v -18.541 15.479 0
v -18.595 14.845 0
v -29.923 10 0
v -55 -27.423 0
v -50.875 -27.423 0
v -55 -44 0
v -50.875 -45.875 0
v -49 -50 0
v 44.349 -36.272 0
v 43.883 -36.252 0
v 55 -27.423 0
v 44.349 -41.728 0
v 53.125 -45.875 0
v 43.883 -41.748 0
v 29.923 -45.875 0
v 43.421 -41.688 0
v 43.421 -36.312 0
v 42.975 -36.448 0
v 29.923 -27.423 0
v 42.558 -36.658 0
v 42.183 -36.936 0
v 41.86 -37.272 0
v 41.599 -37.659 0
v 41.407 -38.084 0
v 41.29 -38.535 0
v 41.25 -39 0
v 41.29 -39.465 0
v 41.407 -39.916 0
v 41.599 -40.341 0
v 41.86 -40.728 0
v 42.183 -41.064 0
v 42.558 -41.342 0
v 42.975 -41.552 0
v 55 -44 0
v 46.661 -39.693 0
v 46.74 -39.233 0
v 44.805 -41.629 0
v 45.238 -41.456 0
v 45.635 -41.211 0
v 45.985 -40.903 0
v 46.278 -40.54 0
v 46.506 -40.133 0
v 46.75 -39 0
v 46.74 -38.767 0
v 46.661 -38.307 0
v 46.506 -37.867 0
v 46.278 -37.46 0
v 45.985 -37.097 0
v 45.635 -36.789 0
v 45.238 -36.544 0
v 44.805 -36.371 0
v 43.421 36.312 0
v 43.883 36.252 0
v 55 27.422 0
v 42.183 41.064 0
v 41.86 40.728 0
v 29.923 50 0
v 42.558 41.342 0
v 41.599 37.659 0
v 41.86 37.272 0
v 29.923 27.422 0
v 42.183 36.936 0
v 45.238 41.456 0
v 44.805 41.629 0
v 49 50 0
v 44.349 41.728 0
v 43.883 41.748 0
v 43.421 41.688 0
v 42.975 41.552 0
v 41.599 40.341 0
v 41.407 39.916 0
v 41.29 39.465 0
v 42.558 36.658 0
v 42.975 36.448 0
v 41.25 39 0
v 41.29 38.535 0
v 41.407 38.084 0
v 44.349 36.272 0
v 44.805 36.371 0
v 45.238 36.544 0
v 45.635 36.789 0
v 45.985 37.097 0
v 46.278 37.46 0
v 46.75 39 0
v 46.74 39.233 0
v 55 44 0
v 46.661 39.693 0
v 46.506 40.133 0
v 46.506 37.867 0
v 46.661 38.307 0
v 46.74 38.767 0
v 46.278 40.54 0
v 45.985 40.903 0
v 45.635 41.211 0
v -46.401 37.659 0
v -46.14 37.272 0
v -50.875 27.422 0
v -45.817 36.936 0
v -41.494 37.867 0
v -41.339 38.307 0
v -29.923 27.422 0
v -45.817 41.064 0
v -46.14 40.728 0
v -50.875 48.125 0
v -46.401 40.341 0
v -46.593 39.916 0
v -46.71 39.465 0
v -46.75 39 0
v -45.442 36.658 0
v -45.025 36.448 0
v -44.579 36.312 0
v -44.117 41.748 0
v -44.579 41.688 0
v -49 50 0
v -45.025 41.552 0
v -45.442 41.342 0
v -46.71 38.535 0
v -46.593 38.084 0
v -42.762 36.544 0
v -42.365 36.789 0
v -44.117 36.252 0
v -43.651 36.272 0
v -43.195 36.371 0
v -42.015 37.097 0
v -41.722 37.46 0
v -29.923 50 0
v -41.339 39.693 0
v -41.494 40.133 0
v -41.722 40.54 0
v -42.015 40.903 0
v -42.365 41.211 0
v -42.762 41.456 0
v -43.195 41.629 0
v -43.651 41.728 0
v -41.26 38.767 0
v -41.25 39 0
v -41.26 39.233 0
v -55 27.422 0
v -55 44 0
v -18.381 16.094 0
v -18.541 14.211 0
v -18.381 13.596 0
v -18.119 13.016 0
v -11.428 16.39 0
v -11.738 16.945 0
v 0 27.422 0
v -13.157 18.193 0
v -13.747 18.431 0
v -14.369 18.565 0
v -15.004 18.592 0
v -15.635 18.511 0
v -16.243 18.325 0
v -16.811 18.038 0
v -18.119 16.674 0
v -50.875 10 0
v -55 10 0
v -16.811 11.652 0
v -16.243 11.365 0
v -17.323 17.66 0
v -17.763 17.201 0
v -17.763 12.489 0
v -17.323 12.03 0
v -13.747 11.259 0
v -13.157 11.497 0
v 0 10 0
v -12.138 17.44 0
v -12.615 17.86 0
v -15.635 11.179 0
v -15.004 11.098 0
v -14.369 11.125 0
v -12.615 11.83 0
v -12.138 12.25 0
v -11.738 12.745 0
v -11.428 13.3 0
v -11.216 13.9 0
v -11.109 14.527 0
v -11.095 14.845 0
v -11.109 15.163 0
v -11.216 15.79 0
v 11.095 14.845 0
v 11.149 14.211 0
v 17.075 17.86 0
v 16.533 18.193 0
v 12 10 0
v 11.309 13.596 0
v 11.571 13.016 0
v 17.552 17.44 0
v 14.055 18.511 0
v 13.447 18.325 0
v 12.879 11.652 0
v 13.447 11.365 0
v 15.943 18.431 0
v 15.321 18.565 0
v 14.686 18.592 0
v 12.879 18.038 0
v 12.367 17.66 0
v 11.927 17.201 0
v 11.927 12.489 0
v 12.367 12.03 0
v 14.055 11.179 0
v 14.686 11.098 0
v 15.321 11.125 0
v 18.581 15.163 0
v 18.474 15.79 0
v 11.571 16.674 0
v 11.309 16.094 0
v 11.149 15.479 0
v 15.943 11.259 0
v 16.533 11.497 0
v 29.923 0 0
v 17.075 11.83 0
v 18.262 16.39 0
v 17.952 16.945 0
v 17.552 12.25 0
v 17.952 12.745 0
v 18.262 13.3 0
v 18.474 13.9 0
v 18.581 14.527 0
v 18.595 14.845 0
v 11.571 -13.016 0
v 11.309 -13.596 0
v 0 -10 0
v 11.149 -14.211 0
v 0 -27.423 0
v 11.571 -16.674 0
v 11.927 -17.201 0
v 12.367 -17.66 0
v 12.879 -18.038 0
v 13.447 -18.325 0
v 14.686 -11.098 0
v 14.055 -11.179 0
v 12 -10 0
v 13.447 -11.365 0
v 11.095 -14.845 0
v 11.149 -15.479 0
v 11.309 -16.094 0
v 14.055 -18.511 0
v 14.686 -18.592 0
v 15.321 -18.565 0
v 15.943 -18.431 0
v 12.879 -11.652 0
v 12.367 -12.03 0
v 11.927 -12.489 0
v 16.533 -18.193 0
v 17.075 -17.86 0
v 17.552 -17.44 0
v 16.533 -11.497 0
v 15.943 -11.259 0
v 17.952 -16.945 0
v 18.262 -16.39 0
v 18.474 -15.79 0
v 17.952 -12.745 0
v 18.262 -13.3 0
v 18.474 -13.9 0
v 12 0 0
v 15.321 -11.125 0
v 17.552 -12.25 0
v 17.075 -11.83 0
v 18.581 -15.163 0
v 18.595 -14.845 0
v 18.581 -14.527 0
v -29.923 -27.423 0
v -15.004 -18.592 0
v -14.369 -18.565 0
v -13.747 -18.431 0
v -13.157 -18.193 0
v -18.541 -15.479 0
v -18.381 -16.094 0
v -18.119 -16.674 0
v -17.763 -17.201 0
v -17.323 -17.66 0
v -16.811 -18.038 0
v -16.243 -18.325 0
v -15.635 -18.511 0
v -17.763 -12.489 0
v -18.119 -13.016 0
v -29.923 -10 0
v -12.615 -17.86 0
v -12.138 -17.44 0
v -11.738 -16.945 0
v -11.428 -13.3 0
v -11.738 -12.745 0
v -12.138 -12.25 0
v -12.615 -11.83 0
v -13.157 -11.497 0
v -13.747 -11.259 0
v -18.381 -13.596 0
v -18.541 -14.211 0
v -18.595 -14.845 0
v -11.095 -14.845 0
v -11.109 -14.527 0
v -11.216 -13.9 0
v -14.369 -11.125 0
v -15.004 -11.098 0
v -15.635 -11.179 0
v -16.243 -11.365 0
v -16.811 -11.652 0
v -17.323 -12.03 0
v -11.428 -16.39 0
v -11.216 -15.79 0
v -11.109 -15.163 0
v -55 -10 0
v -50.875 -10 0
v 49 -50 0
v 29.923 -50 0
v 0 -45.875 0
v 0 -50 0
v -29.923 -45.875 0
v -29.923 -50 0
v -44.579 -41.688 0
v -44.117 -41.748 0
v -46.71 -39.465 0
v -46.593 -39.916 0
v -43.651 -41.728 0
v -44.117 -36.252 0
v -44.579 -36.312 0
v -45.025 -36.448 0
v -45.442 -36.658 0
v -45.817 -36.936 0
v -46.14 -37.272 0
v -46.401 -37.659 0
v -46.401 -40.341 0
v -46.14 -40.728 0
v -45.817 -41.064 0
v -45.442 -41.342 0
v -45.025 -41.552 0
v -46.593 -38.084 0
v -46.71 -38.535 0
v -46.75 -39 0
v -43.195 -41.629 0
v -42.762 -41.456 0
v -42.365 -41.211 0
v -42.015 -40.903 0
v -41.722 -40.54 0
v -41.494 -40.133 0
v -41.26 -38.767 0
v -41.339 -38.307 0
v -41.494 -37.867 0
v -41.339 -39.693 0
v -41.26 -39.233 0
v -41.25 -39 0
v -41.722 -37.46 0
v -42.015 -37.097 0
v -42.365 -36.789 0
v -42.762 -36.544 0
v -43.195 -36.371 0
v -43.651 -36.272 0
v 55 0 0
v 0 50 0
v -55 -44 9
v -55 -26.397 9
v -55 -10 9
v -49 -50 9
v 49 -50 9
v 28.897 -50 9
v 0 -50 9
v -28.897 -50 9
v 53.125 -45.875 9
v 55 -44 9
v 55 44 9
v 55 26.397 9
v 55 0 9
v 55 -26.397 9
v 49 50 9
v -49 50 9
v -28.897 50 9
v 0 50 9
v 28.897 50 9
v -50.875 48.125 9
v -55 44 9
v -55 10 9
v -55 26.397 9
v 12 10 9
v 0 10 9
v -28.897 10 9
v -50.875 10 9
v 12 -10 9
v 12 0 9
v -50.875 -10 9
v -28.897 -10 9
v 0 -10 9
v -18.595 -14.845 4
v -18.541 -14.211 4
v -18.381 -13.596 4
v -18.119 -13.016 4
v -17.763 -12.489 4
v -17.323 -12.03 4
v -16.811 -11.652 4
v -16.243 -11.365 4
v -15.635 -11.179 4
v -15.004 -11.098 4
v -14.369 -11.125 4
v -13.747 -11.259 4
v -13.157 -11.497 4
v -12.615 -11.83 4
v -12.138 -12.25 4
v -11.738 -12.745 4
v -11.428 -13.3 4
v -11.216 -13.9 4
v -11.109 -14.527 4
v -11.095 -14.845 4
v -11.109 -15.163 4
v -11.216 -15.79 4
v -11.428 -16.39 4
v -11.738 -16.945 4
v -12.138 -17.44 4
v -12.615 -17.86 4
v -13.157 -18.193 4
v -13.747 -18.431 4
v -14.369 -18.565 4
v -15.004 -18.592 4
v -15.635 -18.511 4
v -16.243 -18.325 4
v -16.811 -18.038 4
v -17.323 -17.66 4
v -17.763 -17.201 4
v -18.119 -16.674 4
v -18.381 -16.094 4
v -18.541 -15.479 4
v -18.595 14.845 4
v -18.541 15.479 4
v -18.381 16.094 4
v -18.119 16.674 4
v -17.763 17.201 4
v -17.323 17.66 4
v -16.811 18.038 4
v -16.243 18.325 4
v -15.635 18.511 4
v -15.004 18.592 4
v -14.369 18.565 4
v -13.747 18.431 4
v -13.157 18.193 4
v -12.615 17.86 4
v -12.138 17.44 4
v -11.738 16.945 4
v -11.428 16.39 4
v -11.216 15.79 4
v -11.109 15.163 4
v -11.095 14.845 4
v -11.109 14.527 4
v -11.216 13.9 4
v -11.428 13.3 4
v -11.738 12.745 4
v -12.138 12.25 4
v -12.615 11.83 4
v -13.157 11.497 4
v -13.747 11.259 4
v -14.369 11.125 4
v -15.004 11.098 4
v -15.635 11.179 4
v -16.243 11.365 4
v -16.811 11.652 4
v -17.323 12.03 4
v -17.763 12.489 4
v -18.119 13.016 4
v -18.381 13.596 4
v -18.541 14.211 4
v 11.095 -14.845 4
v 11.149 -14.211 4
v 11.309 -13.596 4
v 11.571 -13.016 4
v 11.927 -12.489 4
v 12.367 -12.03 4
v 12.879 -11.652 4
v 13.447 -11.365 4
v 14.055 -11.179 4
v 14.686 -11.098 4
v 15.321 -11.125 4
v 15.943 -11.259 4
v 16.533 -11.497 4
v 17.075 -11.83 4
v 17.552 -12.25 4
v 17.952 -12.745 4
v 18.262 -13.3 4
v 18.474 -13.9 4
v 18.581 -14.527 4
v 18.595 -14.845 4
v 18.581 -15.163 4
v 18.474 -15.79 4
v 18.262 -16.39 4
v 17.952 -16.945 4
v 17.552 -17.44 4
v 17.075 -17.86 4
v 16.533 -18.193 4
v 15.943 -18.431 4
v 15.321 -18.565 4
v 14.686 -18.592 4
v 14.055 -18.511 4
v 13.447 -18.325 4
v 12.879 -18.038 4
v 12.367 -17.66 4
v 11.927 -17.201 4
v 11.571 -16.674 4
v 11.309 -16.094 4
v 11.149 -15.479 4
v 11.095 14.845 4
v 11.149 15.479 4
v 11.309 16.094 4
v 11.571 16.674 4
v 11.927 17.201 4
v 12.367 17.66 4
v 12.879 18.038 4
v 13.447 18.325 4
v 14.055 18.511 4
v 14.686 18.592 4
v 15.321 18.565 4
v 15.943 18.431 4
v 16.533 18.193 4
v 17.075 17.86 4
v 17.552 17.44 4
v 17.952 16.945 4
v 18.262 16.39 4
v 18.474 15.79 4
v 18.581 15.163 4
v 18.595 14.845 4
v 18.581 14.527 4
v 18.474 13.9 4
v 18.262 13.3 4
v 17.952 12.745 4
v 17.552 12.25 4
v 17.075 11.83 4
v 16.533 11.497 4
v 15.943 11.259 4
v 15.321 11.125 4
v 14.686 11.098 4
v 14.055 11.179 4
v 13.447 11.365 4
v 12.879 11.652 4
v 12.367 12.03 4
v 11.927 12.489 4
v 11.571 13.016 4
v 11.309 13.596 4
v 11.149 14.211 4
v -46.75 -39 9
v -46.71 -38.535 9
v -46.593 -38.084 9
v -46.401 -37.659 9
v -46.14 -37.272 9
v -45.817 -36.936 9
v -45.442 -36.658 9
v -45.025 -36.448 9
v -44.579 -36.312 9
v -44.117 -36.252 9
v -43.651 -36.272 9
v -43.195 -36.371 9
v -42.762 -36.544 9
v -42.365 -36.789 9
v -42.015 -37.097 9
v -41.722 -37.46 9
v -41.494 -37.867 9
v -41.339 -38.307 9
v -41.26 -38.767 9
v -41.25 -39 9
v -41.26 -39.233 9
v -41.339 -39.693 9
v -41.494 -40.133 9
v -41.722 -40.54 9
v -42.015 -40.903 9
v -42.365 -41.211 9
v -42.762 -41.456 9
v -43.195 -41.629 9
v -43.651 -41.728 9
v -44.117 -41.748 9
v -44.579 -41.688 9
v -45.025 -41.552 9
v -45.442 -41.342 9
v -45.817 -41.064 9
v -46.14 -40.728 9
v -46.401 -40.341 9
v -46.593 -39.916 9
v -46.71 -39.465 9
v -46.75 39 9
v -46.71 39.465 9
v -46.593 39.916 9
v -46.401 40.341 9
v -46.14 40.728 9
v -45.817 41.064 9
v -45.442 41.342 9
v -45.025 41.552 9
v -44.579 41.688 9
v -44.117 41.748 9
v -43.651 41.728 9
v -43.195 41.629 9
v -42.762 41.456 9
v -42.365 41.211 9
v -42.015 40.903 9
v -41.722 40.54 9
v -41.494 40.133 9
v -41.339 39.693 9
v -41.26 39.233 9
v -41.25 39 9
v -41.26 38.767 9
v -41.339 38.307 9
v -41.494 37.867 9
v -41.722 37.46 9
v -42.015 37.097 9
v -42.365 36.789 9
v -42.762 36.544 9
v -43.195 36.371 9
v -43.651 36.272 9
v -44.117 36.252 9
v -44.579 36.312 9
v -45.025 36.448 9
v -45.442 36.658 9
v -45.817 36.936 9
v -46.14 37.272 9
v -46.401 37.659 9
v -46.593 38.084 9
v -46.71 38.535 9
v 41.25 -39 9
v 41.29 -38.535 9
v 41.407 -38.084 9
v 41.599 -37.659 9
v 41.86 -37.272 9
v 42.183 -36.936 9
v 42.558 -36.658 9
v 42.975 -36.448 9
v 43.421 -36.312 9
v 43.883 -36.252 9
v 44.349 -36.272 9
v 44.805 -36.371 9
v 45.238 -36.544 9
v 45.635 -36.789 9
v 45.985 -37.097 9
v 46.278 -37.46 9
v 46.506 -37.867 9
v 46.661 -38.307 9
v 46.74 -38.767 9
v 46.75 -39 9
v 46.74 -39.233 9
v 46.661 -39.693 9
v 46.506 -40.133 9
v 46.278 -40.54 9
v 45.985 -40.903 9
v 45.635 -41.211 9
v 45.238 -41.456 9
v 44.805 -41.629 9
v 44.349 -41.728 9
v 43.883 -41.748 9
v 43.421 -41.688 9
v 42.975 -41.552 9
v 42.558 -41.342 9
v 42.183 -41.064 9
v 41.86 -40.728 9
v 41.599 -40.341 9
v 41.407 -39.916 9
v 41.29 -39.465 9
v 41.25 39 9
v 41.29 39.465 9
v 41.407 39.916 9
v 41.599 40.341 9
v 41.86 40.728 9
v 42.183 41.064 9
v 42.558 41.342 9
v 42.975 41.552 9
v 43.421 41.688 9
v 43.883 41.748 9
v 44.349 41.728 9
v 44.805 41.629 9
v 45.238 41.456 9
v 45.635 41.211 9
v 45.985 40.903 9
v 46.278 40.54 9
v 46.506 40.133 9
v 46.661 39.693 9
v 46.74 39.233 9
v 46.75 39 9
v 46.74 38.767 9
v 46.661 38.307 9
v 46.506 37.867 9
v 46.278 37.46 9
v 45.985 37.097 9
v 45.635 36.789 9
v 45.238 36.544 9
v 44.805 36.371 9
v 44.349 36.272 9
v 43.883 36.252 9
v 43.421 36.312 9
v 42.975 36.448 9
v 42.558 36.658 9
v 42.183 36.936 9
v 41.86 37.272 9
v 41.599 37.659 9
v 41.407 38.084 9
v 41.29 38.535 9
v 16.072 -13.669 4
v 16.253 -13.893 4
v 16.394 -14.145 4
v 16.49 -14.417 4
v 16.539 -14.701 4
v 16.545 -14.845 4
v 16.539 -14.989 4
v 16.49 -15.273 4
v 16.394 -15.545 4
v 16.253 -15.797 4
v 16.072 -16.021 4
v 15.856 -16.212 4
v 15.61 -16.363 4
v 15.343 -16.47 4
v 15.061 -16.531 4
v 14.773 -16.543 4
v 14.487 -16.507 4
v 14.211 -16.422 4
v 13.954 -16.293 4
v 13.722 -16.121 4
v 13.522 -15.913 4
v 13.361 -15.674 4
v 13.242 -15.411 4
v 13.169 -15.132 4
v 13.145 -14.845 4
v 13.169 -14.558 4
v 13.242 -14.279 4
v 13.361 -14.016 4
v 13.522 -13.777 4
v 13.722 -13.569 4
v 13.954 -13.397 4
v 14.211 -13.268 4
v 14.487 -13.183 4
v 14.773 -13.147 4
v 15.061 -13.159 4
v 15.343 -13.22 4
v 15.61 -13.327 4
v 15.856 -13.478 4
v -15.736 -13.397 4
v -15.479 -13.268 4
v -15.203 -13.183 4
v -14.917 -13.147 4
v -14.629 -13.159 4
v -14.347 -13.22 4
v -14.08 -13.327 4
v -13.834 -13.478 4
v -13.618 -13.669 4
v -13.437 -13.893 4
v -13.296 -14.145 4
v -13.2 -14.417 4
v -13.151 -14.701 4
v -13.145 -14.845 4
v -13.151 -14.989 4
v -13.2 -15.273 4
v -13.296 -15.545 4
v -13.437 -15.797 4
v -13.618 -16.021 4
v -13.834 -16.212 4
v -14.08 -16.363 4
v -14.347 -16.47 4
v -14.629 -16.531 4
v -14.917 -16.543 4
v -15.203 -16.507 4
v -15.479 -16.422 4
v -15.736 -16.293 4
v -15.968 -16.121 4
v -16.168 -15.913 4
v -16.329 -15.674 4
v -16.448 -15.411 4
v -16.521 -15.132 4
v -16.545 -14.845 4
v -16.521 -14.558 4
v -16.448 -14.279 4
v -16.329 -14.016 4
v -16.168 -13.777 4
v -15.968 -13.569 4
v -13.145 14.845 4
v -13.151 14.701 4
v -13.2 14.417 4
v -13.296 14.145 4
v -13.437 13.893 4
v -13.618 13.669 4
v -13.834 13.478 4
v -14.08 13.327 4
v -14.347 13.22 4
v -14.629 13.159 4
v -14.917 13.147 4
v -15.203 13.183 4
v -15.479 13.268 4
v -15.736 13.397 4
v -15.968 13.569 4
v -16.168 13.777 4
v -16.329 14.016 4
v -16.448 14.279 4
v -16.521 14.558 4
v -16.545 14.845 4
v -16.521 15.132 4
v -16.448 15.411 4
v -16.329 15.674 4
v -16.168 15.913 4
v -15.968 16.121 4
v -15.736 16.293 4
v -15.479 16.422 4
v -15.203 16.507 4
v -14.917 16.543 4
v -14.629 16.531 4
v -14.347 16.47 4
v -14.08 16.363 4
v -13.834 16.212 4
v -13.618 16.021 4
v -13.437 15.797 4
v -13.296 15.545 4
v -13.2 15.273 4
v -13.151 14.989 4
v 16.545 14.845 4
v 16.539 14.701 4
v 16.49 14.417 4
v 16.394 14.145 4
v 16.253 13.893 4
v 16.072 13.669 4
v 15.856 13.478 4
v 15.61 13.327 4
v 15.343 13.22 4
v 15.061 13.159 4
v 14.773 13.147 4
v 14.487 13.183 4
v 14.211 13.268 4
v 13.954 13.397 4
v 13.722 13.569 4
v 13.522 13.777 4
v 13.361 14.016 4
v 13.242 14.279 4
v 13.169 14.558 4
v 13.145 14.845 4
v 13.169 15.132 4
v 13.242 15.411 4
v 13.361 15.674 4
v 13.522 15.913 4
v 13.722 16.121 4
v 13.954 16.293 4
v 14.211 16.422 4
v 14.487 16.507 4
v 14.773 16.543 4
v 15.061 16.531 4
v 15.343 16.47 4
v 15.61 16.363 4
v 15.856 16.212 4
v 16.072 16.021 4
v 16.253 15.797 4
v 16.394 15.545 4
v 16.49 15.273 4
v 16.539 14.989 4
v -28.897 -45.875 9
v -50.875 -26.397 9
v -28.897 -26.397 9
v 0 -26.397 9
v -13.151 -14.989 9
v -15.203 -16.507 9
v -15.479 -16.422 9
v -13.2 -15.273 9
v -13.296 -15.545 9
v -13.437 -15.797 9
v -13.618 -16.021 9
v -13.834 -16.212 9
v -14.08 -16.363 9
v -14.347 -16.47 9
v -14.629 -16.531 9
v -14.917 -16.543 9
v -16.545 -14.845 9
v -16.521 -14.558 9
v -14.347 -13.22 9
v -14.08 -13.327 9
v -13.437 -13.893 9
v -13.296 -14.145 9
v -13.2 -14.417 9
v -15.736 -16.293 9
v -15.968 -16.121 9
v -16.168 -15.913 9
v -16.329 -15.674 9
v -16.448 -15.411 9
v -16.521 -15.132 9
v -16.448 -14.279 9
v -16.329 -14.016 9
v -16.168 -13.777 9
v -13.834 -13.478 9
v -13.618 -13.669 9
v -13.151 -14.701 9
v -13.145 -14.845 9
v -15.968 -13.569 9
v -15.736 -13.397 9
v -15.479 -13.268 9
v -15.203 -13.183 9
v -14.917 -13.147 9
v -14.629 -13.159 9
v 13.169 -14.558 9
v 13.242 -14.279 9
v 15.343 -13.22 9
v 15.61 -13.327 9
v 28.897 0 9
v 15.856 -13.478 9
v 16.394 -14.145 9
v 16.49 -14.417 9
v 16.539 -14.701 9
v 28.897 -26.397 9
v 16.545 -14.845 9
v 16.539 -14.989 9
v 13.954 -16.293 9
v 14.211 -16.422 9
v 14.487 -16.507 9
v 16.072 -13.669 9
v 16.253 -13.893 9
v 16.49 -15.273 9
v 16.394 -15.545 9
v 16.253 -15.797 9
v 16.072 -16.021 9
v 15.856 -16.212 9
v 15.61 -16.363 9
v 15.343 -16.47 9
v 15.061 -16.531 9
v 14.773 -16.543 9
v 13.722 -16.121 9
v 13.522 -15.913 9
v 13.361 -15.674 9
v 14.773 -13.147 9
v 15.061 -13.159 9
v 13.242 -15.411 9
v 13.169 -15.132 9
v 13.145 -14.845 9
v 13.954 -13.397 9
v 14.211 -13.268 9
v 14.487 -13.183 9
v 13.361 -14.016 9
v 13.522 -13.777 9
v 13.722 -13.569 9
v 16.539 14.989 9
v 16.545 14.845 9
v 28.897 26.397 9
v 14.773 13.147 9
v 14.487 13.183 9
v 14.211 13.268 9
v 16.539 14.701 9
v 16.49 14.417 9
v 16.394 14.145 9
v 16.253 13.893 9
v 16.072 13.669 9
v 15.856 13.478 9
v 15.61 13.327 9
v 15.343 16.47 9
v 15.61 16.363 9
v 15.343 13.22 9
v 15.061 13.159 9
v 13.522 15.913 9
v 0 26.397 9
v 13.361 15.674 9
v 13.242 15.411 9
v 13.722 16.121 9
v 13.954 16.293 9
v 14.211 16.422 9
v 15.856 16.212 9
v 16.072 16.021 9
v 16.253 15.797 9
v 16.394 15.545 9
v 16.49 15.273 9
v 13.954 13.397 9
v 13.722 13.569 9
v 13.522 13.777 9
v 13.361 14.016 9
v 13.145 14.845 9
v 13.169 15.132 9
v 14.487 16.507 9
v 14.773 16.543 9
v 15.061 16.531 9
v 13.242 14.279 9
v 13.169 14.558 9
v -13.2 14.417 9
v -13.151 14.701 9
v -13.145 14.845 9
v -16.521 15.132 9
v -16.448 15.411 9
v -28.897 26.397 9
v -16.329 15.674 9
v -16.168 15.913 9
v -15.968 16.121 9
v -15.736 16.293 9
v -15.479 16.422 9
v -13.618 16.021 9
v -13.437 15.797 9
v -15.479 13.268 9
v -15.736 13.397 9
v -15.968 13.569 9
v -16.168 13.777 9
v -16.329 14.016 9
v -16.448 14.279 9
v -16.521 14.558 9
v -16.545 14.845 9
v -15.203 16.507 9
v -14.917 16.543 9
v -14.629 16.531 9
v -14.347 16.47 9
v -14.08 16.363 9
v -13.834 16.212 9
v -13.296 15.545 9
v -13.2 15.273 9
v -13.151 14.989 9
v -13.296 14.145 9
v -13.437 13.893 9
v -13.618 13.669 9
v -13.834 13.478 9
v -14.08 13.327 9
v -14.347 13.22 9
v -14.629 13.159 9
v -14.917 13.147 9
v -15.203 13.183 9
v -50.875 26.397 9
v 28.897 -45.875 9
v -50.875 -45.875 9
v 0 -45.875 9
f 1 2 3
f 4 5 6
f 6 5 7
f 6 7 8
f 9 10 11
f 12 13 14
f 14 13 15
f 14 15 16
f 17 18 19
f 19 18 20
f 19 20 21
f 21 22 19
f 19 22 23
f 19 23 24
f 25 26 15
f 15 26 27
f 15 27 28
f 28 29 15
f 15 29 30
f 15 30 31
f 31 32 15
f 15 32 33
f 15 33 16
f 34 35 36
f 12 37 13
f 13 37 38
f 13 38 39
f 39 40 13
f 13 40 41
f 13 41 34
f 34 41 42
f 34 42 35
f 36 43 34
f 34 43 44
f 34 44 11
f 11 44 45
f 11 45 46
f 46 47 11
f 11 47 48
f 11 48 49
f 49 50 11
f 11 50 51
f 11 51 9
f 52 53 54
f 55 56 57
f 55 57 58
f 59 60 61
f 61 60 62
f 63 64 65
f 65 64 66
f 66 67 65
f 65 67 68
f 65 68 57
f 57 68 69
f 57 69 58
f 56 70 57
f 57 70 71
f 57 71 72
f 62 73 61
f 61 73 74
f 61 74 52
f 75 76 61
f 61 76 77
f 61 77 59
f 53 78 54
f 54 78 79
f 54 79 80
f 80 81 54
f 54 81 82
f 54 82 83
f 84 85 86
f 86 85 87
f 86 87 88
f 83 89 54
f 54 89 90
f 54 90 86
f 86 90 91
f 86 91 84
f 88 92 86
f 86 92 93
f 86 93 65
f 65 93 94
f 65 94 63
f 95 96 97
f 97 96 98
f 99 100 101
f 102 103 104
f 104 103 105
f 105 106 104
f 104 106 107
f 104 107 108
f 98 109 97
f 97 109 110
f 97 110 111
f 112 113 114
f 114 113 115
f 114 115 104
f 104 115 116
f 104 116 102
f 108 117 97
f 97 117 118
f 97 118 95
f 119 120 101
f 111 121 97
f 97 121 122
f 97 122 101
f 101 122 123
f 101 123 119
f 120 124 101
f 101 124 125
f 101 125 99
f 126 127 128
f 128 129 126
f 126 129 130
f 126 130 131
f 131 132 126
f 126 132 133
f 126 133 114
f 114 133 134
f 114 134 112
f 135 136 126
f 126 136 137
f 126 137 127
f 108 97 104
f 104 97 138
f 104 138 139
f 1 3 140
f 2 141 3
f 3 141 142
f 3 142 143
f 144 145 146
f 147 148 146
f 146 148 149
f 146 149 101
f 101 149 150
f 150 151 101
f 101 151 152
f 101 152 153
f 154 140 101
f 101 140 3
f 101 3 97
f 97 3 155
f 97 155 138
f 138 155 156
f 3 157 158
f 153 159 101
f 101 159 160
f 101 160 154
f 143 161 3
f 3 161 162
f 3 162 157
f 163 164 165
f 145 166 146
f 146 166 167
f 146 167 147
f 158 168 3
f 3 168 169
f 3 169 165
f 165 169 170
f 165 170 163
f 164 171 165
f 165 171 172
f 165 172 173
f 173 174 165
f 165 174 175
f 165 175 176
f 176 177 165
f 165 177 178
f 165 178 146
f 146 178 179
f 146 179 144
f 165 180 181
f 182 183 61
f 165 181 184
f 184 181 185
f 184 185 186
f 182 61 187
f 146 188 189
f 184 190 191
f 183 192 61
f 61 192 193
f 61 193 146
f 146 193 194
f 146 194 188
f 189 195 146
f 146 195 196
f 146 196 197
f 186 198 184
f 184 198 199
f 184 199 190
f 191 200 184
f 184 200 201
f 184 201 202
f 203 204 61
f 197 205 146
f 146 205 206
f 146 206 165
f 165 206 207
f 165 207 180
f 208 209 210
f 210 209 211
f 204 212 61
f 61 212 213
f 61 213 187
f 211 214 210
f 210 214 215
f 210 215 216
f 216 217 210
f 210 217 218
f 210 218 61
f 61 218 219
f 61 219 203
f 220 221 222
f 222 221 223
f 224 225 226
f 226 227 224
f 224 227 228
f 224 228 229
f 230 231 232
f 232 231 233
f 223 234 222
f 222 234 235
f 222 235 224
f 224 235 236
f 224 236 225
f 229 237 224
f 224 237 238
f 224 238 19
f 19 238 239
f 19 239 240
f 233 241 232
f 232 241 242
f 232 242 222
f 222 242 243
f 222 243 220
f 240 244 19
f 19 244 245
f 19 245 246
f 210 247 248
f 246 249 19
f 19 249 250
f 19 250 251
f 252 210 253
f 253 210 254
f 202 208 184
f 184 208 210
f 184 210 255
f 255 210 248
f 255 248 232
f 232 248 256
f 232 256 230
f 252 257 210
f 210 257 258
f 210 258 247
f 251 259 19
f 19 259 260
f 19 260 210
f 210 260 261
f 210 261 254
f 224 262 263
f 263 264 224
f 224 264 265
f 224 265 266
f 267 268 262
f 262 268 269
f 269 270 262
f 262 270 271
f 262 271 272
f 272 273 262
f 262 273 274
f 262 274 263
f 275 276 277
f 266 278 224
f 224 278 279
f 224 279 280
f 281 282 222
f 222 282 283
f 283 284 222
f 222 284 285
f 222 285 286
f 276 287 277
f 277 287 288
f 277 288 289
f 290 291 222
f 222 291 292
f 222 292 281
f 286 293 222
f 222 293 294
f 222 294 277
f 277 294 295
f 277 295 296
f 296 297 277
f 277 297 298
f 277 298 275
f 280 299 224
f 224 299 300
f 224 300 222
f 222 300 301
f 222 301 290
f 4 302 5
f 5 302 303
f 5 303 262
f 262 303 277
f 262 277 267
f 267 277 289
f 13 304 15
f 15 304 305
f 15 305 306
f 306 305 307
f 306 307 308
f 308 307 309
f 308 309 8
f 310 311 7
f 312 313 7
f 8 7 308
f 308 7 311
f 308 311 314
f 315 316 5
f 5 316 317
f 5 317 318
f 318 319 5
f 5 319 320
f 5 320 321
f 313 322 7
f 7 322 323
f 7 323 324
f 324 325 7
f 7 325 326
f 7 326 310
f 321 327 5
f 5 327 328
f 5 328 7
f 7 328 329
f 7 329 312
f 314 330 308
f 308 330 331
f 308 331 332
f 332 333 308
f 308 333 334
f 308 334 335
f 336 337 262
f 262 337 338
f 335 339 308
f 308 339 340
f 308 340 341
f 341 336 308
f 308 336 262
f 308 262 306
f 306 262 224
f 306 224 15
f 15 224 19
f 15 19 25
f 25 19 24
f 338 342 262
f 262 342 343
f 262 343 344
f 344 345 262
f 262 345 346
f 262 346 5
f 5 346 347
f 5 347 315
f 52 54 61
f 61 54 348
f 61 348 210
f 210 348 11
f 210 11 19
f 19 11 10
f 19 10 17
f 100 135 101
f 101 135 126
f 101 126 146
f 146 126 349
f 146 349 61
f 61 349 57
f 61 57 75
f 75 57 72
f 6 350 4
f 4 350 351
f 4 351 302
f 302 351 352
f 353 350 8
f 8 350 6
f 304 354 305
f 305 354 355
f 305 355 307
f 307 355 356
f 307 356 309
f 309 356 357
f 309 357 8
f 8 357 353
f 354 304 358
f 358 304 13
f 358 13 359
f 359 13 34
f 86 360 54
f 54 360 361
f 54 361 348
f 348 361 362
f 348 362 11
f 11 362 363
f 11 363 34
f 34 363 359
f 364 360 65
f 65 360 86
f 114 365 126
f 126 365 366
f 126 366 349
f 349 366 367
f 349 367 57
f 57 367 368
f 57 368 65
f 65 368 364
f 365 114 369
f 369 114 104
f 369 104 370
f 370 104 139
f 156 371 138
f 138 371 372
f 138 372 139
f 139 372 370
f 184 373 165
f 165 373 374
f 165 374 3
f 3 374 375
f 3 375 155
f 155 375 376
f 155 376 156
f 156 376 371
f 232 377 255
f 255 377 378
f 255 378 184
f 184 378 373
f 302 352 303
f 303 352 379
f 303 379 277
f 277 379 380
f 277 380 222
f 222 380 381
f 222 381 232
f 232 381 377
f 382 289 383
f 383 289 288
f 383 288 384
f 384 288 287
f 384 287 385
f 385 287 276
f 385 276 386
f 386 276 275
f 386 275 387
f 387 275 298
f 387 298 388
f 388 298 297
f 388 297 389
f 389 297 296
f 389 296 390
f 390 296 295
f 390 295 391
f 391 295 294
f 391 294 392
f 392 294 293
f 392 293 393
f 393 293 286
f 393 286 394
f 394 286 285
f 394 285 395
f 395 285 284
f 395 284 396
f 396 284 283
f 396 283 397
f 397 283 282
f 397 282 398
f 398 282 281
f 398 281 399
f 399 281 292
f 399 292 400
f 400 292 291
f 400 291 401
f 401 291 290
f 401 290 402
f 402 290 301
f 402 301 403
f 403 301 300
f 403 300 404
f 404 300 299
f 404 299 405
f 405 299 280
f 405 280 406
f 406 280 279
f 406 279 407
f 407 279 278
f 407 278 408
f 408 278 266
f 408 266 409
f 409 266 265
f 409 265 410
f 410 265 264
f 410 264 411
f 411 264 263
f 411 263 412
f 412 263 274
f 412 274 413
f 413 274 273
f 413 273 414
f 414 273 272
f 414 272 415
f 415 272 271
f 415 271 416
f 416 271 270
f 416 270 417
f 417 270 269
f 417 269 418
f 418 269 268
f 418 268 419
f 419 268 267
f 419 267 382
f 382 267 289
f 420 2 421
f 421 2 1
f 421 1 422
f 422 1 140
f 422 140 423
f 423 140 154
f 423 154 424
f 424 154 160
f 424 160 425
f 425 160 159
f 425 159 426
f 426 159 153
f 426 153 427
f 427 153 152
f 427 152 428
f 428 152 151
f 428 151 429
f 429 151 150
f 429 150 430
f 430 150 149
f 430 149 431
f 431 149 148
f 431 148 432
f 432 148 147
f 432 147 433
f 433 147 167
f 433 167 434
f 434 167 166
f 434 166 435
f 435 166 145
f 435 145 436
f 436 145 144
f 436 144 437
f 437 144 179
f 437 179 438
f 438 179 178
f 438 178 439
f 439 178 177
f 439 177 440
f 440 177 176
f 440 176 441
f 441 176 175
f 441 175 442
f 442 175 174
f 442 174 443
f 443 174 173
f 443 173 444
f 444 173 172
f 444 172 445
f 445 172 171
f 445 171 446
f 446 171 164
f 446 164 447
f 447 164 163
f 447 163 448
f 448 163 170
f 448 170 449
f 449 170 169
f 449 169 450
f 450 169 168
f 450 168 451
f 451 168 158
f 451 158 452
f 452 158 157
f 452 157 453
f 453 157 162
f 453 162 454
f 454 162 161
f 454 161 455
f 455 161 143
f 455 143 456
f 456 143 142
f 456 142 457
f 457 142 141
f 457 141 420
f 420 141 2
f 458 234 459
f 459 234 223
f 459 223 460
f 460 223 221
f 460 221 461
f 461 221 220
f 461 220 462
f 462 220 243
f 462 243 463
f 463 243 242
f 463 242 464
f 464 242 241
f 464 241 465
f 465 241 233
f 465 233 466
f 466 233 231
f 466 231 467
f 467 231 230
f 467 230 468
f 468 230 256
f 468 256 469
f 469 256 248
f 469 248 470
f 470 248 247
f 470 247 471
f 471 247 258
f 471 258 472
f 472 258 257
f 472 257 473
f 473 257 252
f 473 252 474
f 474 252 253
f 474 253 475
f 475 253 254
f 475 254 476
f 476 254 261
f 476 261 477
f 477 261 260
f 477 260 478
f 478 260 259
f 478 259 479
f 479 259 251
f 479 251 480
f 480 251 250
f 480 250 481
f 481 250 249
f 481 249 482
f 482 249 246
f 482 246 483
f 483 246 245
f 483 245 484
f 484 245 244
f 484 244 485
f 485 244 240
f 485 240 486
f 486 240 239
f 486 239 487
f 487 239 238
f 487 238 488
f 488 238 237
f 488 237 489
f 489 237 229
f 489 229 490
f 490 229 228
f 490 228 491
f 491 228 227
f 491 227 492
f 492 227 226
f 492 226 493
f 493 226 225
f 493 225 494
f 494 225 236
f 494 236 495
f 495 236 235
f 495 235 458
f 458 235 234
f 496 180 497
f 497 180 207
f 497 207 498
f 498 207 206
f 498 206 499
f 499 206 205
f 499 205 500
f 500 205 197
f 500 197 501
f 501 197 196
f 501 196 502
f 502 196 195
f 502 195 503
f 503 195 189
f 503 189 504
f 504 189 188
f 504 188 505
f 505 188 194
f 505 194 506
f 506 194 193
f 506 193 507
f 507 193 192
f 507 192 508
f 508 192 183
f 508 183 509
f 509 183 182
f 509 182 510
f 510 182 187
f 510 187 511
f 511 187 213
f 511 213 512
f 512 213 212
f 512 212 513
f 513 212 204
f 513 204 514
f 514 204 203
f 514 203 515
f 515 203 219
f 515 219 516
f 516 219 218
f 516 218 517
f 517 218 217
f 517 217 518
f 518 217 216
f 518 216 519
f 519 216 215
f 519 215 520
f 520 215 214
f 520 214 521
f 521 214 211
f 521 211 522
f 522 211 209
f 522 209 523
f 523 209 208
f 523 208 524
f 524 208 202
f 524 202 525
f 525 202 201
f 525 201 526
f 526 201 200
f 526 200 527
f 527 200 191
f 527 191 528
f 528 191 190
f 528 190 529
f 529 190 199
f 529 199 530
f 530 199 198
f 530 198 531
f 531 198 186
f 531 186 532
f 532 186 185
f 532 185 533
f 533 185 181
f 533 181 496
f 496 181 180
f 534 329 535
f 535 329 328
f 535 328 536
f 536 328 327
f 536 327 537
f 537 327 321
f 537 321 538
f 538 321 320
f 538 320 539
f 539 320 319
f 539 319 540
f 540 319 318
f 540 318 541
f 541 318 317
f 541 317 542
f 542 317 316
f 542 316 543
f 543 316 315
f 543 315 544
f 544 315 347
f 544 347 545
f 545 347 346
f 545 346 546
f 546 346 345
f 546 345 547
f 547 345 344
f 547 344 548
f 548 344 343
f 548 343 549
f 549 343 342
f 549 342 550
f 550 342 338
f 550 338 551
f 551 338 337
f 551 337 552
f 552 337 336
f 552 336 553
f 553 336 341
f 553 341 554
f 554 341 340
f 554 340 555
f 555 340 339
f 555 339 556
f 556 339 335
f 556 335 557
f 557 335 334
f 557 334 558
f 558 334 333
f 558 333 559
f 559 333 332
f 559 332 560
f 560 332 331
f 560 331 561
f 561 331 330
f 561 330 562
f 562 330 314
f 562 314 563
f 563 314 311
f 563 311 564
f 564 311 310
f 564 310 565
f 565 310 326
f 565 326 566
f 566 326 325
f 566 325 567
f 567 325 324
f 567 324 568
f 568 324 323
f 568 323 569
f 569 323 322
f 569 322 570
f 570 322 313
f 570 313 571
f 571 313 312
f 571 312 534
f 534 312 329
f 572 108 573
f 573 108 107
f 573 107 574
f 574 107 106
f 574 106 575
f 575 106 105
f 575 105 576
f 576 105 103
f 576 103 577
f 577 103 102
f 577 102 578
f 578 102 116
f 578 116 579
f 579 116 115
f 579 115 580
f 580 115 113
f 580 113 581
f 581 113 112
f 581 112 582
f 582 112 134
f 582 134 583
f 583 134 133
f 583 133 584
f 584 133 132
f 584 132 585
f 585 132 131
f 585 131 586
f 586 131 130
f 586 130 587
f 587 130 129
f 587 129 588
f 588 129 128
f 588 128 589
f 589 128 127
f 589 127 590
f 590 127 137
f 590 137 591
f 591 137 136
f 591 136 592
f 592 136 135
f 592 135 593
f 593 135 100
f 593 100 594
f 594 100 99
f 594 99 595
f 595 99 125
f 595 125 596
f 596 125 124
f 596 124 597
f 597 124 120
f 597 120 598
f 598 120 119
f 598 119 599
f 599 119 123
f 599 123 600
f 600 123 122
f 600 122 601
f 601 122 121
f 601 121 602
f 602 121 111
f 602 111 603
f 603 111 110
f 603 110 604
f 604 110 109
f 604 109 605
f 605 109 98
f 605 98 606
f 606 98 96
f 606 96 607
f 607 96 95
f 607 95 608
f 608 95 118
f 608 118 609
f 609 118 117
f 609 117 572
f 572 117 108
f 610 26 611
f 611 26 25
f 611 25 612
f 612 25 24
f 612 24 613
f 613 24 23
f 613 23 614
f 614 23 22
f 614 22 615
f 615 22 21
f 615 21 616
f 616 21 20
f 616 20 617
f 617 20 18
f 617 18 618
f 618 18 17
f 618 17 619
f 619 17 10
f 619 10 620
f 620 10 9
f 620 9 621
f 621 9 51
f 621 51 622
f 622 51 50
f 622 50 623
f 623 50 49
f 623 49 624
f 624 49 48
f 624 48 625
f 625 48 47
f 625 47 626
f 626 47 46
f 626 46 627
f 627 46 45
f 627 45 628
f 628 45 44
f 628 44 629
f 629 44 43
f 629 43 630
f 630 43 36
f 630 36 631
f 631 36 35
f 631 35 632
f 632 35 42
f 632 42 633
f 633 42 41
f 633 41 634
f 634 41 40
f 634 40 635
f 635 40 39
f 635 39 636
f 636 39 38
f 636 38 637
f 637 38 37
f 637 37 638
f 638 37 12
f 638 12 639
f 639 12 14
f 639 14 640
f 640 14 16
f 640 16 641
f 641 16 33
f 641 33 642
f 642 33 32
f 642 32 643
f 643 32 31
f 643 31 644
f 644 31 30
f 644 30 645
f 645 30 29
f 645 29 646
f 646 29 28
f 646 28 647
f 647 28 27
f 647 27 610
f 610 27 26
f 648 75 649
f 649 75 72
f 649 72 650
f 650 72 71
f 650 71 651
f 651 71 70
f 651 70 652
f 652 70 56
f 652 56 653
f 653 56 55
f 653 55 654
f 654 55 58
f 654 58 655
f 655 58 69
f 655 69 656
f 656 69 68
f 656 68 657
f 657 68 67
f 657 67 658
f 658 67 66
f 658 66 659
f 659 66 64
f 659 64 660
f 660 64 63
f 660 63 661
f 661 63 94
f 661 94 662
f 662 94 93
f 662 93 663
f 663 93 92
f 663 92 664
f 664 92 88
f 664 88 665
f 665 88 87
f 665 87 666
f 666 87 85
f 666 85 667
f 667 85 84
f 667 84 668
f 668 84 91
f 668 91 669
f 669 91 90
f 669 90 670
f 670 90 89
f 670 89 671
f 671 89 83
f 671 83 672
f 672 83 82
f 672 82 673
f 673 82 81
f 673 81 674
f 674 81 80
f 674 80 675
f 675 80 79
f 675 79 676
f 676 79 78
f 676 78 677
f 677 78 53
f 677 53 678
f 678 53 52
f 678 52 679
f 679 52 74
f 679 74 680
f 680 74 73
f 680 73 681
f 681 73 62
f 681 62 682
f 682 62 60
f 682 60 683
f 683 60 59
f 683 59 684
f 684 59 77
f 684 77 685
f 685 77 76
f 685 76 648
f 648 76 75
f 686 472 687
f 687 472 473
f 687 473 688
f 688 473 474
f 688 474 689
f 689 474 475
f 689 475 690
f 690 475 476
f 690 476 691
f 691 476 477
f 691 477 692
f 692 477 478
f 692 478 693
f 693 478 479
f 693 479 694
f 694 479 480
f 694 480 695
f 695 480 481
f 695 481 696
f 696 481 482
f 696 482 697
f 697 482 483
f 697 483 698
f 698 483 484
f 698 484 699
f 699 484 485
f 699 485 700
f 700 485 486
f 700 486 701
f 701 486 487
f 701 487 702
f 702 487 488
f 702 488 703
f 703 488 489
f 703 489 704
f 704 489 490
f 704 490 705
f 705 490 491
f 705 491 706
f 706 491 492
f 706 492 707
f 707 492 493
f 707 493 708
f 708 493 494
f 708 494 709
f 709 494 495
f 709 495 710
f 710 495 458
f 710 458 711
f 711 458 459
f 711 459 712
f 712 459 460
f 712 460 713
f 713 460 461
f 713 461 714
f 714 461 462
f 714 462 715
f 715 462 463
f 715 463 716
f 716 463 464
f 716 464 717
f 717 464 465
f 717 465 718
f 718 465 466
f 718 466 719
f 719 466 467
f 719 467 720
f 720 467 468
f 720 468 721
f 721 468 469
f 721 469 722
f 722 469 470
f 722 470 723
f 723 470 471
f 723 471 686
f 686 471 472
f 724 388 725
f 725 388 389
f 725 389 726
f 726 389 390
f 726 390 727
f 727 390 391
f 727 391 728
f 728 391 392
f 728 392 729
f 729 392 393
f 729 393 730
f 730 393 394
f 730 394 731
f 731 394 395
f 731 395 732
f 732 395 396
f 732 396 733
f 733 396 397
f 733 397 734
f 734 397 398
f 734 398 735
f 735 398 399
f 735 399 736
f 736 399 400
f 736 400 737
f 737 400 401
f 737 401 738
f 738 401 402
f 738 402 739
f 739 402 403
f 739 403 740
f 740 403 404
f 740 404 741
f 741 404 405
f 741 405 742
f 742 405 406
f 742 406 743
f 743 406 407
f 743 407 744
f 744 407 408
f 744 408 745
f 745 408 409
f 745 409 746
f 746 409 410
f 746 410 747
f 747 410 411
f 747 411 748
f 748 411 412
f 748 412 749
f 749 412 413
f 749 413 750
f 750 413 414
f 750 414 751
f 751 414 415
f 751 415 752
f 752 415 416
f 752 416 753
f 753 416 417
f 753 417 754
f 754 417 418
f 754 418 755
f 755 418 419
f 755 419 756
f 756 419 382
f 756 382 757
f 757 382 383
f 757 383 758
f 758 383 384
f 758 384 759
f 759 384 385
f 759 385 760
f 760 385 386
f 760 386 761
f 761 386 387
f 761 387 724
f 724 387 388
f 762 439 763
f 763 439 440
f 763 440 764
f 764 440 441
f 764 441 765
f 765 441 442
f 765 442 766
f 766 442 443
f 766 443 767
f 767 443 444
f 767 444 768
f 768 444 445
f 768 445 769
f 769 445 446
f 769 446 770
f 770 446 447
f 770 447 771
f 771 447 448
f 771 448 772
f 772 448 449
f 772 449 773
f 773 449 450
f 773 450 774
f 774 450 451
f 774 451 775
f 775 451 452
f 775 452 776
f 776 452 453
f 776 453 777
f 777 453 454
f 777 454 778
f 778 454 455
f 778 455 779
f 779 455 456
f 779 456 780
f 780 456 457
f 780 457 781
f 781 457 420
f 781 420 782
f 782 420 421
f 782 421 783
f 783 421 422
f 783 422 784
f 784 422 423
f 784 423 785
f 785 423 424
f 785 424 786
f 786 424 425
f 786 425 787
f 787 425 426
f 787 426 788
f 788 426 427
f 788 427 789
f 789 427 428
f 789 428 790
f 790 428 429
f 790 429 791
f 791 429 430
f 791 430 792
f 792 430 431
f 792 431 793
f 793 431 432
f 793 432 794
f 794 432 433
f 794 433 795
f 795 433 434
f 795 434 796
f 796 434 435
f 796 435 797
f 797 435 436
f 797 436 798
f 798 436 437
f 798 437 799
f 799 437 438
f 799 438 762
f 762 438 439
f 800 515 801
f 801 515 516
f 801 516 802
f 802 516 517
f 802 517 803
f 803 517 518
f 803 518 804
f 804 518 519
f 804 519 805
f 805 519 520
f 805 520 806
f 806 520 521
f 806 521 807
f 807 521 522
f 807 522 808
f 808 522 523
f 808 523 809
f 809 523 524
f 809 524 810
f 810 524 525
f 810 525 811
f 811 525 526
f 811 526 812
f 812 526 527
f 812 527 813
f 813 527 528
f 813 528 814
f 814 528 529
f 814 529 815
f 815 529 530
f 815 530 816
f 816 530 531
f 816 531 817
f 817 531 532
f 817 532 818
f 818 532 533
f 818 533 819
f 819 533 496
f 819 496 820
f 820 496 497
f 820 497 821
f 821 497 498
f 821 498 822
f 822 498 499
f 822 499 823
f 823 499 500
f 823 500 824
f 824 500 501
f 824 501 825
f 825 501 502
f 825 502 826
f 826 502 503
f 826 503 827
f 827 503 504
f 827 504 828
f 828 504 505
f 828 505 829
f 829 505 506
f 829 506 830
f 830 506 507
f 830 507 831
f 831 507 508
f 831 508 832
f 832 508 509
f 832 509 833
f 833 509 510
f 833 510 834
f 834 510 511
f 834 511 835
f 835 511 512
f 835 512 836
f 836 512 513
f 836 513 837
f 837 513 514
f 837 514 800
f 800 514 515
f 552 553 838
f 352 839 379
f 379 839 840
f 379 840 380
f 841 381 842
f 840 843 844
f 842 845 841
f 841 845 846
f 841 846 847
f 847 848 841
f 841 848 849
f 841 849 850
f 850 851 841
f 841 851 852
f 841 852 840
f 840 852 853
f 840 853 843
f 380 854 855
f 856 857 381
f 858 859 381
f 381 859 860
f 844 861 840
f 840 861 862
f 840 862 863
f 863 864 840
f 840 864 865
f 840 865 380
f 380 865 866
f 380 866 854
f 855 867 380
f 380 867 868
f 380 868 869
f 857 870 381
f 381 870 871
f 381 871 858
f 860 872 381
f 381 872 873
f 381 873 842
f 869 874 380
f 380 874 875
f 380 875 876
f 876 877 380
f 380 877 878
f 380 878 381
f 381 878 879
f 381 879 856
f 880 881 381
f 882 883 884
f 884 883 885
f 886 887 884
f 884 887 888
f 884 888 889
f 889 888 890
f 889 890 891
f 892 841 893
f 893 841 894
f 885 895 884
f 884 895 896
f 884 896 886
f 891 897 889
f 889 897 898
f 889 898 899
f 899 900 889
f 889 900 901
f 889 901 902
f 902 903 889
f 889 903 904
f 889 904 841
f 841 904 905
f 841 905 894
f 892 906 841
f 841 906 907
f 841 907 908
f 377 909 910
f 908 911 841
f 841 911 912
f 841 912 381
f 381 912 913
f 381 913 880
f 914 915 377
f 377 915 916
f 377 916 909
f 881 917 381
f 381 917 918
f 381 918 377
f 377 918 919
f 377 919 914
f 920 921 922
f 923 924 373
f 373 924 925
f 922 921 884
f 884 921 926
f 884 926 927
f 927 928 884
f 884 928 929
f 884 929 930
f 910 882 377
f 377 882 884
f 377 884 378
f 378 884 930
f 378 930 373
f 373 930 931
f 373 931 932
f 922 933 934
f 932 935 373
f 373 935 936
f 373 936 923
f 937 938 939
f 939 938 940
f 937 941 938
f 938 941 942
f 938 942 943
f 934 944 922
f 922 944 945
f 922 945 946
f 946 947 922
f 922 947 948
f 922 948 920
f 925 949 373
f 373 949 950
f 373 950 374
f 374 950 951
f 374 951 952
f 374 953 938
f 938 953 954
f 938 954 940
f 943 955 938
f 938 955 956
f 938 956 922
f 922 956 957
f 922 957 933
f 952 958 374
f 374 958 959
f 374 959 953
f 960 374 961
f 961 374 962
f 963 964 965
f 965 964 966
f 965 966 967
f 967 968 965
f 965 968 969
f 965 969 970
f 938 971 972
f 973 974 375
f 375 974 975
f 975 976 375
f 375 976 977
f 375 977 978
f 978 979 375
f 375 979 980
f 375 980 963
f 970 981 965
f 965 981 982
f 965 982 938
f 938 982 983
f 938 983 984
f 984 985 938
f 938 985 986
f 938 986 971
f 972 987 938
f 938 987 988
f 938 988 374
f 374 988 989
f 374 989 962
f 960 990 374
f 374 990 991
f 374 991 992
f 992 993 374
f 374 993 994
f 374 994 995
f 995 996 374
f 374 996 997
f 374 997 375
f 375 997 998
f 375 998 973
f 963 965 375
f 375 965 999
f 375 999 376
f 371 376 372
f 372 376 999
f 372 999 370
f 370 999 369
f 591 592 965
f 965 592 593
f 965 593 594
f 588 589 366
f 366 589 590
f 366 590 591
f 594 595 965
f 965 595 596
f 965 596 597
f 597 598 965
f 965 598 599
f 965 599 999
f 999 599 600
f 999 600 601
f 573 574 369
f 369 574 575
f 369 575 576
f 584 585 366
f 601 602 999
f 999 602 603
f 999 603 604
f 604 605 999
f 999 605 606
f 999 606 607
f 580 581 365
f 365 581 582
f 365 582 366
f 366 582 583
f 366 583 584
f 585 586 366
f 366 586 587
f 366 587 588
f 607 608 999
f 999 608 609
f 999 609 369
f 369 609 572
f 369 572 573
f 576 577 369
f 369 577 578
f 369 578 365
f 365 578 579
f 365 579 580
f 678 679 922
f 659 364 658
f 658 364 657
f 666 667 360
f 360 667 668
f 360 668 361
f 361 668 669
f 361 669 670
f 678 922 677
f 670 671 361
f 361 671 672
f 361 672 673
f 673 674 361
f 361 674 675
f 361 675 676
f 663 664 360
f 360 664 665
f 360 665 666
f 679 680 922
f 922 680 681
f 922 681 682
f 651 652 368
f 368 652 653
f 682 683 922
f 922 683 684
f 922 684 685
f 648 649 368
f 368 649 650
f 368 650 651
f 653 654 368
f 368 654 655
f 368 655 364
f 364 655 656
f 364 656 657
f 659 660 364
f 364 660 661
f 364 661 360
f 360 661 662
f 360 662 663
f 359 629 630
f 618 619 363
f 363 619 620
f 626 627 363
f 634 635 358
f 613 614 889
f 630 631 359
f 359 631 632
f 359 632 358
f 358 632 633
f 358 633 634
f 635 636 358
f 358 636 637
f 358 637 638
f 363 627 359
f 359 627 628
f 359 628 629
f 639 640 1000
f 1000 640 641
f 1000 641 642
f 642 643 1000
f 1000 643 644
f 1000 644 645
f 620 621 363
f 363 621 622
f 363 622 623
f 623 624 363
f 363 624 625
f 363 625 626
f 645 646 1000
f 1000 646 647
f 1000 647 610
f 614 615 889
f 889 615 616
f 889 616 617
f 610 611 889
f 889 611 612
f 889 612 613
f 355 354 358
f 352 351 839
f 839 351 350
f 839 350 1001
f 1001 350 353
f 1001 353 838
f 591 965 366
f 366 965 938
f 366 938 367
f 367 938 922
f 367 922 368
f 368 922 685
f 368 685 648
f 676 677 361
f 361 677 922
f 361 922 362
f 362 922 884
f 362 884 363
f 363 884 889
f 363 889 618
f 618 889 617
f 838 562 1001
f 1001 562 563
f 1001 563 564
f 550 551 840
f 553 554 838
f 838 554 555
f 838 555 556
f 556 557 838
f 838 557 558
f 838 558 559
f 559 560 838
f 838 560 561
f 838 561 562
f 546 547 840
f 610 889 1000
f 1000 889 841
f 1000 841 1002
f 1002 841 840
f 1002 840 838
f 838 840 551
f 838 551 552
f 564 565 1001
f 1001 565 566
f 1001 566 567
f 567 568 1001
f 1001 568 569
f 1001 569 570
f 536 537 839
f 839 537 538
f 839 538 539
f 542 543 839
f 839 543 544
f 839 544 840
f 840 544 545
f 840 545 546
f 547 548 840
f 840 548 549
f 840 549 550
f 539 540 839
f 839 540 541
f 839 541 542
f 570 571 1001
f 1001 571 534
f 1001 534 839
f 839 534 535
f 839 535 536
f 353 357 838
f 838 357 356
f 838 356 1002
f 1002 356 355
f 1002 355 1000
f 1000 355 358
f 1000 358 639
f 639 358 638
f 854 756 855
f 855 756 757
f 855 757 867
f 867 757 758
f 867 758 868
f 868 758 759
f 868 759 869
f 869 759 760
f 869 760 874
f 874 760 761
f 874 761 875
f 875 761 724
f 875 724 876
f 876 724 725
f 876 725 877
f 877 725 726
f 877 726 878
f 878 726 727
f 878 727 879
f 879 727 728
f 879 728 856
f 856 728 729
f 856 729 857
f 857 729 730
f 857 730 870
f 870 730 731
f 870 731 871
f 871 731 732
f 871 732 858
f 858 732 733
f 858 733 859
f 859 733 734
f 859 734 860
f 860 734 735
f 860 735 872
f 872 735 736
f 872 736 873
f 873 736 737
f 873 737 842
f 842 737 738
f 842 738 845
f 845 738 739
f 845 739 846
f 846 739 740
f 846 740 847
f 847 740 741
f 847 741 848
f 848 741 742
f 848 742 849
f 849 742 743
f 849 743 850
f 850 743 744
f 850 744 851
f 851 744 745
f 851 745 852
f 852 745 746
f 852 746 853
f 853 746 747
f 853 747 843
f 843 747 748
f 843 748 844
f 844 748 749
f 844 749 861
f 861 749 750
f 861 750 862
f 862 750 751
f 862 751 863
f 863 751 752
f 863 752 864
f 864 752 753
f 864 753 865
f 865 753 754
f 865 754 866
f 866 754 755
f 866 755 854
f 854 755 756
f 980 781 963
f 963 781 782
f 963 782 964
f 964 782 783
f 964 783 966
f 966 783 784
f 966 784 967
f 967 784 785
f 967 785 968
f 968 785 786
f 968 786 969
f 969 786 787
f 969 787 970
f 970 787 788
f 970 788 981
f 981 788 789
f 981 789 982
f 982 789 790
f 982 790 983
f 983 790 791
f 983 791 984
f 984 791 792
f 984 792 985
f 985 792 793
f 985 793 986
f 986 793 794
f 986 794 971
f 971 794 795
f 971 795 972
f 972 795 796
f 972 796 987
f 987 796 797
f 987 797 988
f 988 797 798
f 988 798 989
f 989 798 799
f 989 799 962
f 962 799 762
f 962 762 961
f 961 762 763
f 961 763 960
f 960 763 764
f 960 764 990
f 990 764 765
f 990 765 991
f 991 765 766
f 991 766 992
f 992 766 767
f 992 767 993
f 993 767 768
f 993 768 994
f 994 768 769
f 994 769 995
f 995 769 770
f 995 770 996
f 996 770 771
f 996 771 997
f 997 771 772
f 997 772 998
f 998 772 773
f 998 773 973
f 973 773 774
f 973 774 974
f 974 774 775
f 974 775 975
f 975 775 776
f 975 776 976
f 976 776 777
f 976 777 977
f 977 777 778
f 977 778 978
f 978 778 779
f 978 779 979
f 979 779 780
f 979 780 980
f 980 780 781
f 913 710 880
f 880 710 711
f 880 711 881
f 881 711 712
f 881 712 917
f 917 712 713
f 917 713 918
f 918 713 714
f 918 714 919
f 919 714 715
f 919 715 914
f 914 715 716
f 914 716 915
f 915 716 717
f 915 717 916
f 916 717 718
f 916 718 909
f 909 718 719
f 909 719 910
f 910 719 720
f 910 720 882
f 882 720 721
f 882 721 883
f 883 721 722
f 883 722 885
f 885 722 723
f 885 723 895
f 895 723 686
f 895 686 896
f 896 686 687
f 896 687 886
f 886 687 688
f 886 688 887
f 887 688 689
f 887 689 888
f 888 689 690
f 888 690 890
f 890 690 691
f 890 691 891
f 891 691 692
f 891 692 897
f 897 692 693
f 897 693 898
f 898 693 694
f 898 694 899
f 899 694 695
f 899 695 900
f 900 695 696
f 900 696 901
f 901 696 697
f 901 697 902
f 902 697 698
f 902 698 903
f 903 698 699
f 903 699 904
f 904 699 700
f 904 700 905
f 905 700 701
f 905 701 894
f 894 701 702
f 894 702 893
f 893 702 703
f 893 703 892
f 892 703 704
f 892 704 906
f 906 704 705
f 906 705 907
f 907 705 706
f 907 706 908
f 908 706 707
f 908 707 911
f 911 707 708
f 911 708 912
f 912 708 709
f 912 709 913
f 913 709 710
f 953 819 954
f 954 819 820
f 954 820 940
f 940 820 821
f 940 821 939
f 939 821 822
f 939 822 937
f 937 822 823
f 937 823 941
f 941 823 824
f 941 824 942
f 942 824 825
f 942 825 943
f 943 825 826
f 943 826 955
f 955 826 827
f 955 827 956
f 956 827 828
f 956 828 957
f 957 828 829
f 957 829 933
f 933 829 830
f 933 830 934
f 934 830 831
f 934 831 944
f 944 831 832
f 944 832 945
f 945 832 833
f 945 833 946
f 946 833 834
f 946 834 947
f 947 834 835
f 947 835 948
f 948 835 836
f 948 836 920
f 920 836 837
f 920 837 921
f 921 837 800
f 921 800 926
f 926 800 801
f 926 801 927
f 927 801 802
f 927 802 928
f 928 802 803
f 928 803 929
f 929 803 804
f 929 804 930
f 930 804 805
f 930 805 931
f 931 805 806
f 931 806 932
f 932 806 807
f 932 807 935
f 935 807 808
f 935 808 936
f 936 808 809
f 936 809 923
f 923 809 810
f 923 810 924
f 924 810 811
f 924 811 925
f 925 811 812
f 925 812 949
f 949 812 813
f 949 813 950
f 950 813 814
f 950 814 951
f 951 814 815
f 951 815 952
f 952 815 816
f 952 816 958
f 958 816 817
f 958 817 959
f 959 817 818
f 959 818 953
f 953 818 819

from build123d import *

# Parameters (mm, degrees)
SKETCH_1_R        = 3.75
SKETCH_1_R_2      = 2.75
EXTRUDE_250_DEPTH = 4
EXTRUDE_START     = 4
SKETCH_2_R        = 1.7
SKETCH_2_R_2      = 2.75
EXTRUDE_354_DEPTH = 5


with BuildPart() as part:
    # 草图1 → Extrude 250 (new body)
    with BuildSketch(Plane.XY):
        Polygon((-55, -44), (-49, -50), (49, -50), (55, -44), (55, 44), (49, 50), (-49, 50), (-55, 44), (-55, 10), (12, 10), (12, -10), (-55, -10), align=None)
        with Locations((-14.845, -14.845)):
            Circle(SKETCH_1_R, mode=Mode.SUBTRACT)
        with Locations((-14.845, 14.845)):
            Circle(SKETCH_1_R, mode=Mode.SUBTRACT)
        with Locations((14.845, -14.845)):
            Circle(SKETCH_1_R, mode=Mode.SUBTRACT)
        with Locations((14.845, 14.845)):
            Circle(SKETCH_1_R, mode=Mode.SUBTRACT)
        with Locations((-44, -39)):
            Circle(SKETCH_1_R_2, mode=Mode.SUBTRACT)
        with Locations((-44, 39)):
            Circle(SKETCH_1_R_2, mode=Mode.SUBTRACT)
        with Locations((44, -39)):
            Circle(SKETCH_1_R_2, mode=Mode.SUBTRACT)
        with Locations((44, 39)):
            Circle(SKETCH_1_R_2, mode=Mode.SUBTRACT)
    extrude(amount=EXTRUDE_250_DEPTH)

    # 草图2 → Extrude 354 (add)
    with BuildSketch(Plane.XY.offset(EXTRUDE_START)):
        Polygon((-55, -44), (-49, -50), (49, -50), (55, -44), (55, 44), (49, 50), (-49, 50), (-55, 44), (-55, 10), (12, 10), (12, -10), (-55, -10), align=None)
        with Locations((-14.845, -14.845)):
            Circle(SKETCH_2_R, mode=Mode.SUBTRACT)
        with Locations((-14.845, 14.845)):
            Circle(SKETCH_2_R, mode=Mode.SUBTRACT)
        with Locations((14.845, -14.845)):
            Circle(SKETCH_2_R, mode=Mode.SUBTRACT)
        with Locations((14.845, 14.845)):
            Circle(SKETCH_2_R, mode=Mode.SUBTRACT)
        with Locations((-44, -39)):
            Circle(SKETCH_2_R_2, mode=Mode.SUBTRACT)
        with Locations((-44, 39)):
            Circle(SKETCH_2_R_2, mode=Mode.SUBTRACT)
        with Locations((44, -39)):
            Circle(SKETCH_2_R_2, mode=Mode.SUBTRACT)
        with Locations((44, 39)):
            Circle(SKETCH_2_R_2, mode=Mode.SUBTRACT)
    extrude(amount=EXTRUDE_354_DEPTH)


solid = part.part
